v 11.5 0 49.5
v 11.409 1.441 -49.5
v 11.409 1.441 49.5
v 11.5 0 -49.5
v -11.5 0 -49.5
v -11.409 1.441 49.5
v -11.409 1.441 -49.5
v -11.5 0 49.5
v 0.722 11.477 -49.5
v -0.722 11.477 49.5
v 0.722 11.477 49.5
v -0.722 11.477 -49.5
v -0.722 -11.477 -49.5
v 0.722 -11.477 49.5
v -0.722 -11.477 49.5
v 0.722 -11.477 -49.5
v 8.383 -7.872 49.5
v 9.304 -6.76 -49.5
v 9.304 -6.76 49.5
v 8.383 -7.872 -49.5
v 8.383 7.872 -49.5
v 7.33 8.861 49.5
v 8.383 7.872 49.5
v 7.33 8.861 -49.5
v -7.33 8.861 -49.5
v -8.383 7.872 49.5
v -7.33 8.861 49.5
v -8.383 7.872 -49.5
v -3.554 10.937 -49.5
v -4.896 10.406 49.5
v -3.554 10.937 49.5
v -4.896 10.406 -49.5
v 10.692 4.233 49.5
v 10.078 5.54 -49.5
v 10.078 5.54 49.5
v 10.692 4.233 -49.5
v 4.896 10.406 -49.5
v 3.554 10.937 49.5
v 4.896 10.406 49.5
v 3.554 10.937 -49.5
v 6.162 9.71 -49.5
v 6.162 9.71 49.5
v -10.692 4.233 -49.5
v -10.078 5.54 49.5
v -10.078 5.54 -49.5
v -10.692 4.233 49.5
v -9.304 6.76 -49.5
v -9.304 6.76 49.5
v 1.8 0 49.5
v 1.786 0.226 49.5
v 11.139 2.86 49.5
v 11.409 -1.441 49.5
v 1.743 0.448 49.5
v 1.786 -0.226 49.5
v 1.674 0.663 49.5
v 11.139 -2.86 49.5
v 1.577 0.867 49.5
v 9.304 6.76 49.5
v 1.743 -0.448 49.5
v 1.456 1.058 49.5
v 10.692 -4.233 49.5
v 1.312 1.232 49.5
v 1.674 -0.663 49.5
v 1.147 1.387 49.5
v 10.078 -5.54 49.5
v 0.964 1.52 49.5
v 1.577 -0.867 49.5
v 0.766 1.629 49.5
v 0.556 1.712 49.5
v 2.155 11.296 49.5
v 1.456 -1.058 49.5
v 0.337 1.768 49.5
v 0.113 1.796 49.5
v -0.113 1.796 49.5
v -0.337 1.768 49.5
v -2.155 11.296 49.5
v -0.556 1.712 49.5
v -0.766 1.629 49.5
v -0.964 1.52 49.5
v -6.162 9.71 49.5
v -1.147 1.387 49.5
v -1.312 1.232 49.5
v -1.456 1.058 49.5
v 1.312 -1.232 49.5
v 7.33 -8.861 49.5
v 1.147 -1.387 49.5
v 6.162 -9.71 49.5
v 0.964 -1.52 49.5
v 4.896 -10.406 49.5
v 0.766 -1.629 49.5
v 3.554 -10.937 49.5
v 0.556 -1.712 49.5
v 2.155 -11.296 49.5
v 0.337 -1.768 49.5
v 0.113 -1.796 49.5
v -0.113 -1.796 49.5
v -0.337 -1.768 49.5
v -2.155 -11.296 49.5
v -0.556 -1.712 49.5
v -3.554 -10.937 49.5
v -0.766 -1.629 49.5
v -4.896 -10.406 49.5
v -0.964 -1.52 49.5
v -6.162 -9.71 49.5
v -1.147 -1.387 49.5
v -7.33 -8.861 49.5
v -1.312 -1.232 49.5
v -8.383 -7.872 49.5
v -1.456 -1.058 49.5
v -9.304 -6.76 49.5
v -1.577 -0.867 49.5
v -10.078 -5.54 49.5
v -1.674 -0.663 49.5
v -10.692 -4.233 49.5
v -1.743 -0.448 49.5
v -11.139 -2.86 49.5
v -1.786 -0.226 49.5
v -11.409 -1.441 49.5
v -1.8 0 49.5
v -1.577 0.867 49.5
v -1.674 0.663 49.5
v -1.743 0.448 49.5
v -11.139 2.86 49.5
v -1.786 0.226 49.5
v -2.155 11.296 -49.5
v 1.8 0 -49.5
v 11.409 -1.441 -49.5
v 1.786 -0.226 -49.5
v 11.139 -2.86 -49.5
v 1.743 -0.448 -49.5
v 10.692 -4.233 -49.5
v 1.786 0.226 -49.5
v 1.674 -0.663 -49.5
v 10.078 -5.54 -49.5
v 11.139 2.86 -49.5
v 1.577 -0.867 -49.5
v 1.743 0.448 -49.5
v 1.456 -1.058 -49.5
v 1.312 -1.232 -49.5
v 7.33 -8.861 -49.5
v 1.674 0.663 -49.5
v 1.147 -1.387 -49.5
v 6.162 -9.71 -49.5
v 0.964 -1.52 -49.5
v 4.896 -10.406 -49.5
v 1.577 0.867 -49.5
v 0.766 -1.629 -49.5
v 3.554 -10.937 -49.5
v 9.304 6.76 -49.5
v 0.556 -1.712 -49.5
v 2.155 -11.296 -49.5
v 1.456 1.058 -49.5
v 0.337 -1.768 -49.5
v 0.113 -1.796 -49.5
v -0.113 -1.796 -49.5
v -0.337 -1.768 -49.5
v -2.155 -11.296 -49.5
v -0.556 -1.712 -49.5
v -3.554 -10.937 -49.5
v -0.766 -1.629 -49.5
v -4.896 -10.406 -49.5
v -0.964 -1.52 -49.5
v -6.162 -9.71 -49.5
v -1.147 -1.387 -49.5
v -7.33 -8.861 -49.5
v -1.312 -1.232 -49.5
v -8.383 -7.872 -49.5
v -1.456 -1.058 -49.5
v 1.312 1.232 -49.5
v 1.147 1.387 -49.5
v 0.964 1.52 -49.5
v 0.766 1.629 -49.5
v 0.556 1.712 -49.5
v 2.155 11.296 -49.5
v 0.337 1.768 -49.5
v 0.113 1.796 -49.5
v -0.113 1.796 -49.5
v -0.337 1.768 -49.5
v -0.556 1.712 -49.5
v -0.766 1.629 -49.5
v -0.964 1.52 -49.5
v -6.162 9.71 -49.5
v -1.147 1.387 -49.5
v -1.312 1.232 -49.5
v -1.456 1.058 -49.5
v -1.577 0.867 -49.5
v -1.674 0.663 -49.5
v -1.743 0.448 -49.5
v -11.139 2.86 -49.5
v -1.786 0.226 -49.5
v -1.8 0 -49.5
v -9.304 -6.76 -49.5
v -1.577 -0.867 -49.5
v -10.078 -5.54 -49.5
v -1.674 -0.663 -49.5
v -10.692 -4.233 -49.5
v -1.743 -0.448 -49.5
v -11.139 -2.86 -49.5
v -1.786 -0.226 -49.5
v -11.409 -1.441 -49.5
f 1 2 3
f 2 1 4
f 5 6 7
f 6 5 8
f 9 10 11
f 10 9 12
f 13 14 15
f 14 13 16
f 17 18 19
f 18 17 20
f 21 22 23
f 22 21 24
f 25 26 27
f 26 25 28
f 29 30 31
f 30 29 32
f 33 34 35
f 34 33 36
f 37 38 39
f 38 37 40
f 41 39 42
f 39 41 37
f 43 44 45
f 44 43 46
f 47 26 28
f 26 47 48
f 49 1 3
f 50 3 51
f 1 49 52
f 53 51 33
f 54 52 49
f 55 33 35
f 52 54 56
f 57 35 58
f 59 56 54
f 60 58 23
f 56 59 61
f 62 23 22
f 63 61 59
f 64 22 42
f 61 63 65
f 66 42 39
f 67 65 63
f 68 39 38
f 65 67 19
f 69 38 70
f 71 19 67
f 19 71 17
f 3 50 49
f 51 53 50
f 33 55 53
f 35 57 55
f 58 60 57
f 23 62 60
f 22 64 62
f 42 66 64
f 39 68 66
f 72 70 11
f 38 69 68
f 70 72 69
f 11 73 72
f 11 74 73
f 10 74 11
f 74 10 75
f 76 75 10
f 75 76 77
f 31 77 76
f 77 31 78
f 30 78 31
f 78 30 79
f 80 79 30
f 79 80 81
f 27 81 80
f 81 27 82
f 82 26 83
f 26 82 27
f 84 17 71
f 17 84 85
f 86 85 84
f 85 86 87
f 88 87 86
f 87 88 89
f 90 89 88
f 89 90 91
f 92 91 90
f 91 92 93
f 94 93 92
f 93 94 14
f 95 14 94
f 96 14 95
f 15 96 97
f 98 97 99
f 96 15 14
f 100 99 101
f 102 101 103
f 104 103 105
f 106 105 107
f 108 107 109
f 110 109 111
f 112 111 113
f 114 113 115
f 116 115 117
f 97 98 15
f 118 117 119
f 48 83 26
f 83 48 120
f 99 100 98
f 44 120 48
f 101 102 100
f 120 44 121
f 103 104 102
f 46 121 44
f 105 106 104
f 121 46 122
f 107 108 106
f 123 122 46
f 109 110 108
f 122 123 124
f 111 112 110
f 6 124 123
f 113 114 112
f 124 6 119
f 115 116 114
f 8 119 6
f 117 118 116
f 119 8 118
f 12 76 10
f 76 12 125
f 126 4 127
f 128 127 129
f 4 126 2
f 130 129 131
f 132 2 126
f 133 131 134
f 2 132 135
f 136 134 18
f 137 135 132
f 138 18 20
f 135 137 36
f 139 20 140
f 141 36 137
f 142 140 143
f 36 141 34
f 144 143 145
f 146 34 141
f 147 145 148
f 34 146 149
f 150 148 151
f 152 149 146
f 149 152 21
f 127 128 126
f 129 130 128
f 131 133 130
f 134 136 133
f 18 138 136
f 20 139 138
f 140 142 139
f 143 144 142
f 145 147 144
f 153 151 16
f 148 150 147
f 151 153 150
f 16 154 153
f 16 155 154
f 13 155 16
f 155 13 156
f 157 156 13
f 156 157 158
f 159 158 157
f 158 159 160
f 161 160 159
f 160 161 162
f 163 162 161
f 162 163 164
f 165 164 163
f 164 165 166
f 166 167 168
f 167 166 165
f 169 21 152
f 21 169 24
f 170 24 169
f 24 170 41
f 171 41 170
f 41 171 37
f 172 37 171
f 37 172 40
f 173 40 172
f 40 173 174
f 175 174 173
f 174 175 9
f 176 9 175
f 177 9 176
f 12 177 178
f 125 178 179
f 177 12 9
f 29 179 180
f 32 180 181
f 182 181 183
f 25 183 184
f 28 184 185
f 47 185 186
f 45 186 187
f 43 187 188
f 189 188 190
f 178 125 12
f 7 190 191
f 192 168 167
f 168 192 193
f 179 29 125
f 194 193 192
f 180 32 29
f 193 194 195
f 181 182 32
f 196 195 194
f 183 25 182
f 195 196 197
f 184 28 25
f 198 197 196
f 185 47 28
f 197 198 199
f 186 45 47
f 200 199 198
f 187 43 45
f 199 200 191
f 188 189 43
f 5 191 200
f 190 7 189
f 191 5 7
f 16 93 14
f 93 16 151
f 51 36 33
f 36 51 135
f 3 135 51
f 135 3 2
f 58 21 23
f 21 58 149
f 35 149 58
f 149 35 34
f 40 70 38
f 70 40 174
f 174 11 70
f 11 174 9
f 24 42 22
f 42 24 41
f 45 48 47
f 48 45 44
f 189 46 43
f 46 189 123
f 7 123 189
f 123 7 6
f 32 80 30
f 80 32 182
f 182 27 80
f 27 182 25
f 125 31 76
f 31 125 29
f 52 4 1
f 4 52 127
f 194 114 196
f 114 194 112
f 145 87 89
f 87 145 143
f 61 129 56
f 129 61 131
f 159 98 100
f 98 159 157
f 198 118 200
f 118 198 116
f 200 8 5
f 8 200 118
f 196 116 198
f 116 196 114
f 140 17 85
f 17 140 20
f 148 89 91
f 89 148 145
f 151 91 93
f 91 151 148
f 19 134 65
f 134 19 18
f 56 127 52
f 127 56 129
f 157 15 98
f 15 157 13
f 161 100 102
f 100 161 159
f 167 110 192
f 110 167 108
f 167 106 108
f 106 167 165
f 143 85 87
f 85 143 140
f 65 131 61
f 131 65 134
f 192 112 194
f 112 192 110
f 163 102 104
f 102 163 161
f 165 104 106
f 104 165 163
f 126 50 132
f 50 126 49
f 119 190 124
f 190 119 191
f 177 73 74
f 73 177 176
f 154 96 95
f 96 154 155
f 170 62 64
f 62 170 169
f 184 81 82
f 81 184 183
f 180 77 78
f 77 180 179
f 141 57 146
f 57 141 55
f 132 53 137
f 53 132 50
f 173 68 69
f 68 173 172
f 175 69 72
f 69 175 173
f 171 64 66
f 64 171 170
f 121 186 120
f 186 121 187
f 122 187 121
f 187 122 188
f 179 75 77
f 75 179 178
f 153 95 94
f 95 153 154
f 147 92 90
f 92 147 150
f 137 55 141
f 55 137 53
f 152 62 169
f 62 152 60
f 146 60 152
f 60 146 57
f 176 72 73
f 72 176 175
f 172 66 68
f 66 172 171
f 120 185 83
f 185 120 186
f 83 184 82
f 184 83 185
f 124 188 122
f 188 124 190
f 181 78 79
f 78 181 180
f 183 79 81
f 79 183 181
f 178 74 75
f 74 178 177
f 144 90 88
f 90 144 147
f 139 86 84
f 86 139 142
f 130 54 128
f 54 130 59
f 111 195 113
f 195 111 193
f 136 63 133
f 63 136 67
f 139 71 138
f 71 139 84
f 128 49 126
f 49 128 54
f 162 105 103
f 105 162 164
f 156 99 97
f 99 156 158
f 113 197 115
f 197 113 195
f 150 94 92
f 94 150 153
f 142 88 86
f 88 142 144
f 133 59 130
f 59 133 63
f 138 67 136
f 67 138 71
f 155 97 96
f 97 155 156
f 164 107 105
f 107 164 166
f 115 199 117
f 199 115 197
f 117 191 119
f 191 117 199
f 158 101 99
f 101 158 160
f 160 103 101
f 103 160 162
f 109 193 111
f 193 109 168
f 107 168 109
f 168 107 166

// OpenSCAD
$fn = 50;


difference() {
	union() {
		translate(v = [0, 0, -49.5000000000]) {
			cylinder(h = 99, r = 11.5000000000);
		}
	}
	union() {
		translate(v = [0, 0, -100.0000000000]) {
			cylinder(h = 200, r = 1.8000000000);
		}
	}
}
